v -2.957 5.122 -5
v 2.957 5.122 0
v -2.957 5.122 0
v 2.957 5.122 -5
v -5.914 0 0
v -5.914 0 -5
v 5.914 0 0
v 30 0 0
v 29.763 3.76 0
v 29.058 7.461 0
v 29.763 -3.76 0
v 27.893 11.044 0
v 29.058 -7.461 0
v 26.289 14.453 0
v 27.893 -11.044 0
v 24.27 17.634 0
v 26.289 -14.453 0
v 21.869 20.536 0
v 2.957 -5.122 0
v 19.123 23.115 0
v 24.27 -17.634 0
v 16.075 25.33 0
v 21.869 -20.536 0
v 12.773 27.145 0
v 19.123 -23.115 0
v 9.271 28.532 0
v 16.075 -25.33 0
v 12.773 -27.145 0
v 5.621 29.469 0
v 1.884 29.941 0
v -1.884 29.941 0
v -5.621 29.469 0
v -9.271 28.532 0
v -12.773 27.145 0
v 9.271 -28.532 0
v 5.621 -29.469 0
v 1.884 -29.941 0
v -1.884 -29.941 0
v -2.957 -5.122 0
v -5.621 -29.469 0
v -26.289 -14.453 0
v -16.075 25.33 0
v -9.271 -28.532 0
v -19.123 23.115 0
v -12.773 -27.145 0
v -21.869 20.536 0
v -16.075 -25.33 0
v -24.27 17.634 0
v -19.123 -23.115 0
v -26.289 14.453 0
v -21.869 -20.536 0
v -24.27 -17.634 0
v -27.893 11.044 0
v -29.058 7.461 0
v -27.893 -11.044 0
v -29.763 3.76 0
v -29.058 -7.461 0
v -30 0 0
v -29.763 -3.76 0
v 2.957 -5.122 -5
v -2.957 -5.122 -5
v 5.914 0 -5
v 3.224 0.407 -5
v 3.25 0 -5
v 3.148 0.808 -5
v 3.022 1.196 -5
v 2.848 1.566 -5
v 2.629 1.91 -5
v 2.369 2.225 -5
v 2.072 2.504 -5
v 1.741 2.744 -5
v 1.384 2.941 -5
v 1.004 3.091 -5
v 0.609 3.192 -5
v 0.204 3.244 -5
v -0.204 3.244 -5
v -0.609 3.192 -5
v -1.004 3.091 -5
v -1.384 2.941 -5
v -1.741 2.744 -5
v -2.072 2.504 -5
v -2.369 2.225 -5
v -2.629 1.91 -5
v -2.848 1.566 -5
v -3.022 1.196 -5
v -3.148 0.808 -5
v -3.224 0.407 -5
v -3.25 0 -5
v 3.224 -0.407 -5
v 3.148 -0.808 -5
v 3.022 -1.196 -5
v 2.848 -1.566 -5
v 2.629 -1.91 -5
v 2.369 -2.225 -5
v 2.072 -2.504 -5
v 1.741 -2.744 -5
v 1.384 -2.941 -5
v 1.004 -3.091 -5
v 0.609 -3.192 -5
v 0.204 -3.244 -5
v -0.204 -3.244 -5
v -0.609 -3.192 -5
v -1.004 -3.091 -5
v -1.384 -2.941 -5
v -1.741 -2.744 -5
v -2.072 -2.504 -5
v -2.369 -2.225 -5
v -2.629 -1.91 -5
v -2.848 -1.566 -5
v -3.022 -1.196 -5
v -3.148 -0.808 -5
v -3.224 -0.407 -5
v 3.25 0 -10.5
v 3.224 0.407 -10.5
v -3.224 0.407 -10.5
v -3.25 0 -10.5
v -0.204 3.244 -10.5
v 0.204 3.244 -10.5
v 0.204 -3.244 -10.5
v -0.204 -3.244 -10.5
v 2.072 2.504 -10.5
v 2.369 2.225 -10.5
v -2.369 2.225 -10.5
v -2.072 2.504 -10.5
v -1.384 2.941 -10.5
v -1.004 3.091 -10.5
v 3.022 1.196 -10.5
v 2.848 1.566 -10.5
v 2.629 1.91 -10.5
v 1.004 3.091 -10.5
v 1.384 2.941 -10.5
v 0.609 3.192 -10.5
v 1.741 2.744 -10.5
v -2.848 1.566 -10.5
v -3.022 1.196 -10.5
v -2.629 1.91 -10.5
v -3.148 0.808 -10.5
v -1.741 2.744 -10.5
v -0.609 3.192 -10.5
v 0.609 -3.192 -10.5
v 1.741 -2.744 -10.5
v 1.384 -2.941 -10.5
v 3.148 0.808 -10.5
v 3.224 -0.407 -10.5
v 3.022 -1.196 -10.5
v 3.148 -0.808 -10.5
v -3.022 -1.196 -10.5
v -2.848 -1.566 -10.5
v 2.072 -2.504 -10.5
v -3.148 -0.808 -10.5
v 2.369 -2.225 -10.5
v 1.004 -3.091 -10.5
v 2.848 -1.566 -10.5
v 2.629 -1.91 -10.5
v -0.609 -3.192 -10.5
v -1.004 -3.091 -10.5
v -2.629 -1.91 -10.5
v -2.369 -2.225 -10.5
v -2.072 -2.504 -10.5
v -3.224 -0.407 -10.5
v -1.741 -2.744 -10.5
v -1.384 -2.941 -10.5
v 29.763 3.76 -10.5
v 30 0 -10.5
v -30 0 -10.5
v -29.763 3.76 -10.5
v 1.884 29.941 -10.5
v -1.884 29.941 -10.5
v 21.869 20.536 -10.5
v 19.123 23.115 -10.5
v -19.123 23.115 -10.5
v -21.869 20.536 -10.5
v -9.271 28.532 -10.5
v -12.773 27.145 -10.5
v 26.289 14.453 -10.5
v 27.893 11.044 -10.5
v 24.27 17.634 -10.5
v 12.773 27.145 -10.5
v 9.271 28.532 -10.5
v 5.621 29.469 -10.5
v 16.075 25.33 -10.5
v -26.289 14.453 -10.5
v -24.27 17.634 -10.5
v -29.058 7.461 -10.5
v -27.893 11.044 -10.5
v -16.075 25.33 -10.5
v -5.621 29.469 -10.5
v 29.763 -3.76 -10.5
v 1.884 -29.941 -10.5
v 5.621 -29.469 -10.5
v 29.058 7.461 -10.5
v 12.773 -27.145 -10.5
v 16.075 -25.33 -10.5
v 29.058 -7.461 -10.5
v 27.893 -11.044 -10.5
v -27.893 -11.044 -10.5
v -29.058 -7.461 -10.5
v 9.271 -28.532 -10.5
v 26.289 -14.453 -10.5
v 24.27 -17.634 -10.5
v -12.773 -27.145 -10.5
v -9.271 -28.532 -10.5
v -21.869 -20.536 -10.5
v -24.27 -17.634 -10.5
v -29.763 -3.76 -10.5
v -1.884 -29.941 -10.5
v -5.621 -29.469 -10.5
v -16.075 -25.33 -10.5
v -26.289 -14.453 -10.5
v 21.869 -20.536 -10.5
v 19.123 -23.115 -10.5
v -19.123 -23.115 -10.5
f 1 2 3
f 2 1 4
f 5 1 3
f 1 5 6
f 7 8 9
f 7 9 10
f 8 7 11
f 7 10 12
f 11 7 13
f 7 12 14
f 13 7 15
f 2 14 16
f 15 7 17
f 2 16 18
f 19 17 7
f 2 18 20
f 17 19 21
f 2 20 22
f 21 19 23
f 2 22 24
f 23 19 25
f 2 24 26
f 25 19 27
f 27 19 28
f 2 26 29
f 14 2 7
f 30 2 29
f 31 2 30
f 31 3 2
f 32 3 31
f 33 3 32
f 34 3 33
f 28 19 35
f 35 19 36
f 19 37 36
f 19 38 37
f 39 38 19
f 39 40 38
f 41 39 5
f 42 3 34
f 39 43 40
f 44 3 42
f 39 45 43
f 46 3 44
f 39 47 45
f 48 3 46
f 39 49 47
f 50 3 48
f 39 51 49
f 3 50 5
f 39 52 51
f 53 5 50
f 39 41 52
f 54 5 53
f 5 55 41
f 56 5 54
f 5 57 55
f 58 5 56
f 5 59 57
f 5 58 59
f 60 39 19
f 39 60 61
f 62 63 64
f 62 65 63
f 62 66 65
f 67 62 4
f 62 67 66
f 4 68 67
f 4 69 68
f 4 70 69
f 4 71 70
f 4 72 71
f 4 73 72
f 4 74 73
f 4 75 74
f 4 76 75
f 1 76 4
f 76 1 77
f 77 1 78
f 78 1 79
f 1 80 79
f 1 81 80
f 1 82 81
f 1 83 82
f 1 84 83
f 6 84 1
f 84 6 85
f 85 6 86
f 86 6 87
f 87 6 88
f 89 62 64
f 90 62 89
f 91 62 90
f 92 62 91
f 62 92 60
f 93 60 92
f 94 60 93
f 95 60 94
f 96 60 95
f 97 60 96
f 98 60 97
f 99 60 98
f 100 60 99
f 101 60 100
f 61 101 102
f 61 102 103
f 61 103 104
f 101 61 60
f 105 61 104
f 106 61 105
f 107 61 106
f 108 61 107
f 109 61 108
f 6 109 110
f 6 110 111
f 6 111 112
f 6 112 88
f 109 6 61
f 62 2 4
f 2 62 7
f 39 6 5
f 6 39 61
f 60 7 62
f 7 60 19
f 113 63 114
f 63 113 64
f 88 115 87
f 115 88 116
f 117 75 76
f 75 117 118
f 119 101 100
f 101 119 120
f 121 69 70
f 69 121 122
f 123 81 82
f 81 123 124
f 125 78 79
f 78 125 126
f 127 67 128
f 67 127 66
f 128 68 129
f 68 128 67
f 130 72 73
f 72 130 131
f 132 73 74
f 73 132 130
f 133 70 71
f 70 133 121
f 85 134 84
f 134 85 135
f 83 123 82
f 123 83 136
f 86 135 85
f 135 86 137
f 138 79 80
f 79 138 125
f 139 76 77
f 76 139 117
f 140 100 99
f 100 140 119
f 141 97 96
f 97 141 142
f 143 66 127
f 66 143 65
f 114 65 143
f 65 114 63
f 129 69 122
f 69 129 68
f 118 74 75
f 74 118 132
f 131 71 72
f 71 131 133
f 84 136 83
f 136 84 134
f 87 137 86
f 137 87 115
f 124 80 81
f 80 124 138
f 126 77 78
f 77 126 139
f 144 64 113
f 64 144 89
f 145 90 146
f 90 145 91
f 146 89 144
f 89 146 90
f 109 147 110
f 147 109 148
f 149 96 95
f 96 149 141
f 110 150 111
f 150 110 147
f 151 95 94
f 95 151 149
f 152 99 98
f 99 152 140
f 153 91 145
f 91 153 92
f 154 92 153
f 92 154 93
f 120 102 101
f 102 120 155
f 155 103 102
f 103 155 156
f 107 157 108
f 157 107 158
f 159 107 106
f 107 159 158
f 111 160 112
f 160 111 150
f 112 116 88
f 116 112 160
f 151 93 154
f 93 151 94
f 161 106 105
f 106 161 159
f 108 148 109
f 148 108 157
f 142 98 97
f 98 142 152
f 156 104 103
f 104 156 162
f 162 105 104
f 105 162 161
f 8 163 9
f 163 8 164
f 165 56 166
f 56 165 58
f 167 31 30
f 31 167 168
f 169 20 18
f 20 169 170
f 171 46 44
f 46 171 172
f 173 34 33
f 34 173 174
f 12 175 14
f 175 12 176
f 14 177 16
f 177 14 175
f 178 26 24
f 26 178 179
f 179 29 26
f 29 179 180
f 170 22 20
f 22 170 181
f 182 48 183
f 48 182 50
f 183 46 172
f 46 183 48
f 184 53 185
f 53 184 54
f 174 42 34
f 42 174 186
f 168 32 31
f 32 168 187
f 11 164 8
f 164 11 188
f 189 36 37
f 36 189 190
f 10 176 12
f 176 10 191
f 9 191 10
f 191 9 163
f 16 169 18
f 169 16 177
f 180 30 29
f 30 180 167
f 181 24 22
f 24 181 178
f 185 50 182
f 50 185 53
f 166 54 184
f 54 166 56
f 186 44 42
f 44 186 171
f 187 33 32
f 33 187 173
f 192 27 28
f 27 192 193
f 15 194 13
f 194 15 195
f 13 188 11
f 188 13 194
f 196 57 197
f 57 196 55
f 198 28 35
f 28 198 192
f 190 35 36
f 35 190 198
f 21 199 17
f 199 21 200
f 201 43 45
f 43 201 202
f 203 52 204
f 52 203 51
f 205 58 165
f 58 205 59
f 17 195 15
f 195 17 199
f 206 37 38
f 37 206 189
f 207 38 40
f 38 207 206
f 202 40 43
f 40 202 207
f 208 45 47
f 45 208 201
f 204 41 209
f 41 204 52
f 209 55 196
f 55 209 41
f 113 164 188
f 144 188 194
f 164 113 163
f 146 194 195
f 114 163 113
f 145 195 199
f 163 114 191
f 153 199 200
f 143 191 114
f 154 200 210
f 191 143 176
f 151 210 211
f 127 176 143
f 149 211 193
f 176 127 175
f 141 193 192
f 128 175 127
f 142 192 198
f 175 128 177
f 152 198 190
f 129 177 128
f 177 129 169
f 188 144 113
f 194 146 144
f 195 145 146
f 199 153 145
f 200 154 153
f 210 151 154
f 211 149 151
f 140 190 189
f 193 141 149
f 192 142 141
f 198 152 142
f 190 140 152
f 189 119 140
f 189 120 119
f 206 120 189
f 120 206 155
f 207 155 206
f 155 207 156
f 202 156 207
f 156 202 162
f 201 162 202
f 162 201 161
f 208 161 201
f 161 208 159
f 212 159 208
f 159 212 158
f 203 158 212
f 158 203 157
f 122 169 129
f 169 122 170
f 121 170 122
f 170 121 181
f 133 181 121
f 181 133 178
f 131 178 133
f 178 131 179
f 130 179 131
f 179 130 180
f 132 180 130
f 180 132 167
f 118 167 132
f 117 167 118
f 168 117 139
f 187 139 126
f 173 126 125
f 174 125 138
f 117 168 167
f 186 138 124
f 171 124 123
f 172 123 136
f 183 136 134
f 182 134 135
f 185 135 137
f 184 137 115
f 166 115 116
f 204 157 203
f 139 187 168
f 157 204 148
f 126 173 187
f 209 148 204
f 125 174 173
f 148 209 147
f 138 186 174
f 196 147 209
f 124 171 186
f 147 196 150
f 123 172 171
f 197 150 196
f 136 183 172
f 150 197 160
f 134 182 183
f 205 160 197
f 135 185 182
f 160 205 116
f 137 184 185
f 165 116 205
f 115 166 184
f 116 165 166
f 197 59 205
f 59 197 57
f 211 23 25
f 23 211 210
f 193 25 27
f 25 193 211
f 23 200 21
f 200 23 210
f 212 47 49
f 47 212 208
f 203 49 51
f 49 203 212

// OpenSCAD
$fn = 50;


difference() {
	union() {
		translate(v = [0, 0, -10.5000000000]) {
			cylinder(h = 10.5000000000, r = 30.0000000000);
		}
	}
	union() {
		translate(v = [0, 0, 0]) {
			rotate(a = [0, 0, 0]) {
				difference() {
					union() {
						translate(v = [0, 0, -5]) {
							linear_extrude(height = 5) {
								polygon(points = [[5.9142500000, 0.0000000000], [2.9571250000, 5.1218907443], [-2.9571250000, 5.1218907443], [-5.9142500000, 0.0000000000], [-2.9571250000, -5.1218907443], [2.9571250000, -5.1218907443]]);
							}
						}
					}
					union();
				}
			}
		}
		#translate(v = [0, 0, -100.0000000000]) {
			cylinder(h = 200, r = 3.2500000000);
		}
	}
}
